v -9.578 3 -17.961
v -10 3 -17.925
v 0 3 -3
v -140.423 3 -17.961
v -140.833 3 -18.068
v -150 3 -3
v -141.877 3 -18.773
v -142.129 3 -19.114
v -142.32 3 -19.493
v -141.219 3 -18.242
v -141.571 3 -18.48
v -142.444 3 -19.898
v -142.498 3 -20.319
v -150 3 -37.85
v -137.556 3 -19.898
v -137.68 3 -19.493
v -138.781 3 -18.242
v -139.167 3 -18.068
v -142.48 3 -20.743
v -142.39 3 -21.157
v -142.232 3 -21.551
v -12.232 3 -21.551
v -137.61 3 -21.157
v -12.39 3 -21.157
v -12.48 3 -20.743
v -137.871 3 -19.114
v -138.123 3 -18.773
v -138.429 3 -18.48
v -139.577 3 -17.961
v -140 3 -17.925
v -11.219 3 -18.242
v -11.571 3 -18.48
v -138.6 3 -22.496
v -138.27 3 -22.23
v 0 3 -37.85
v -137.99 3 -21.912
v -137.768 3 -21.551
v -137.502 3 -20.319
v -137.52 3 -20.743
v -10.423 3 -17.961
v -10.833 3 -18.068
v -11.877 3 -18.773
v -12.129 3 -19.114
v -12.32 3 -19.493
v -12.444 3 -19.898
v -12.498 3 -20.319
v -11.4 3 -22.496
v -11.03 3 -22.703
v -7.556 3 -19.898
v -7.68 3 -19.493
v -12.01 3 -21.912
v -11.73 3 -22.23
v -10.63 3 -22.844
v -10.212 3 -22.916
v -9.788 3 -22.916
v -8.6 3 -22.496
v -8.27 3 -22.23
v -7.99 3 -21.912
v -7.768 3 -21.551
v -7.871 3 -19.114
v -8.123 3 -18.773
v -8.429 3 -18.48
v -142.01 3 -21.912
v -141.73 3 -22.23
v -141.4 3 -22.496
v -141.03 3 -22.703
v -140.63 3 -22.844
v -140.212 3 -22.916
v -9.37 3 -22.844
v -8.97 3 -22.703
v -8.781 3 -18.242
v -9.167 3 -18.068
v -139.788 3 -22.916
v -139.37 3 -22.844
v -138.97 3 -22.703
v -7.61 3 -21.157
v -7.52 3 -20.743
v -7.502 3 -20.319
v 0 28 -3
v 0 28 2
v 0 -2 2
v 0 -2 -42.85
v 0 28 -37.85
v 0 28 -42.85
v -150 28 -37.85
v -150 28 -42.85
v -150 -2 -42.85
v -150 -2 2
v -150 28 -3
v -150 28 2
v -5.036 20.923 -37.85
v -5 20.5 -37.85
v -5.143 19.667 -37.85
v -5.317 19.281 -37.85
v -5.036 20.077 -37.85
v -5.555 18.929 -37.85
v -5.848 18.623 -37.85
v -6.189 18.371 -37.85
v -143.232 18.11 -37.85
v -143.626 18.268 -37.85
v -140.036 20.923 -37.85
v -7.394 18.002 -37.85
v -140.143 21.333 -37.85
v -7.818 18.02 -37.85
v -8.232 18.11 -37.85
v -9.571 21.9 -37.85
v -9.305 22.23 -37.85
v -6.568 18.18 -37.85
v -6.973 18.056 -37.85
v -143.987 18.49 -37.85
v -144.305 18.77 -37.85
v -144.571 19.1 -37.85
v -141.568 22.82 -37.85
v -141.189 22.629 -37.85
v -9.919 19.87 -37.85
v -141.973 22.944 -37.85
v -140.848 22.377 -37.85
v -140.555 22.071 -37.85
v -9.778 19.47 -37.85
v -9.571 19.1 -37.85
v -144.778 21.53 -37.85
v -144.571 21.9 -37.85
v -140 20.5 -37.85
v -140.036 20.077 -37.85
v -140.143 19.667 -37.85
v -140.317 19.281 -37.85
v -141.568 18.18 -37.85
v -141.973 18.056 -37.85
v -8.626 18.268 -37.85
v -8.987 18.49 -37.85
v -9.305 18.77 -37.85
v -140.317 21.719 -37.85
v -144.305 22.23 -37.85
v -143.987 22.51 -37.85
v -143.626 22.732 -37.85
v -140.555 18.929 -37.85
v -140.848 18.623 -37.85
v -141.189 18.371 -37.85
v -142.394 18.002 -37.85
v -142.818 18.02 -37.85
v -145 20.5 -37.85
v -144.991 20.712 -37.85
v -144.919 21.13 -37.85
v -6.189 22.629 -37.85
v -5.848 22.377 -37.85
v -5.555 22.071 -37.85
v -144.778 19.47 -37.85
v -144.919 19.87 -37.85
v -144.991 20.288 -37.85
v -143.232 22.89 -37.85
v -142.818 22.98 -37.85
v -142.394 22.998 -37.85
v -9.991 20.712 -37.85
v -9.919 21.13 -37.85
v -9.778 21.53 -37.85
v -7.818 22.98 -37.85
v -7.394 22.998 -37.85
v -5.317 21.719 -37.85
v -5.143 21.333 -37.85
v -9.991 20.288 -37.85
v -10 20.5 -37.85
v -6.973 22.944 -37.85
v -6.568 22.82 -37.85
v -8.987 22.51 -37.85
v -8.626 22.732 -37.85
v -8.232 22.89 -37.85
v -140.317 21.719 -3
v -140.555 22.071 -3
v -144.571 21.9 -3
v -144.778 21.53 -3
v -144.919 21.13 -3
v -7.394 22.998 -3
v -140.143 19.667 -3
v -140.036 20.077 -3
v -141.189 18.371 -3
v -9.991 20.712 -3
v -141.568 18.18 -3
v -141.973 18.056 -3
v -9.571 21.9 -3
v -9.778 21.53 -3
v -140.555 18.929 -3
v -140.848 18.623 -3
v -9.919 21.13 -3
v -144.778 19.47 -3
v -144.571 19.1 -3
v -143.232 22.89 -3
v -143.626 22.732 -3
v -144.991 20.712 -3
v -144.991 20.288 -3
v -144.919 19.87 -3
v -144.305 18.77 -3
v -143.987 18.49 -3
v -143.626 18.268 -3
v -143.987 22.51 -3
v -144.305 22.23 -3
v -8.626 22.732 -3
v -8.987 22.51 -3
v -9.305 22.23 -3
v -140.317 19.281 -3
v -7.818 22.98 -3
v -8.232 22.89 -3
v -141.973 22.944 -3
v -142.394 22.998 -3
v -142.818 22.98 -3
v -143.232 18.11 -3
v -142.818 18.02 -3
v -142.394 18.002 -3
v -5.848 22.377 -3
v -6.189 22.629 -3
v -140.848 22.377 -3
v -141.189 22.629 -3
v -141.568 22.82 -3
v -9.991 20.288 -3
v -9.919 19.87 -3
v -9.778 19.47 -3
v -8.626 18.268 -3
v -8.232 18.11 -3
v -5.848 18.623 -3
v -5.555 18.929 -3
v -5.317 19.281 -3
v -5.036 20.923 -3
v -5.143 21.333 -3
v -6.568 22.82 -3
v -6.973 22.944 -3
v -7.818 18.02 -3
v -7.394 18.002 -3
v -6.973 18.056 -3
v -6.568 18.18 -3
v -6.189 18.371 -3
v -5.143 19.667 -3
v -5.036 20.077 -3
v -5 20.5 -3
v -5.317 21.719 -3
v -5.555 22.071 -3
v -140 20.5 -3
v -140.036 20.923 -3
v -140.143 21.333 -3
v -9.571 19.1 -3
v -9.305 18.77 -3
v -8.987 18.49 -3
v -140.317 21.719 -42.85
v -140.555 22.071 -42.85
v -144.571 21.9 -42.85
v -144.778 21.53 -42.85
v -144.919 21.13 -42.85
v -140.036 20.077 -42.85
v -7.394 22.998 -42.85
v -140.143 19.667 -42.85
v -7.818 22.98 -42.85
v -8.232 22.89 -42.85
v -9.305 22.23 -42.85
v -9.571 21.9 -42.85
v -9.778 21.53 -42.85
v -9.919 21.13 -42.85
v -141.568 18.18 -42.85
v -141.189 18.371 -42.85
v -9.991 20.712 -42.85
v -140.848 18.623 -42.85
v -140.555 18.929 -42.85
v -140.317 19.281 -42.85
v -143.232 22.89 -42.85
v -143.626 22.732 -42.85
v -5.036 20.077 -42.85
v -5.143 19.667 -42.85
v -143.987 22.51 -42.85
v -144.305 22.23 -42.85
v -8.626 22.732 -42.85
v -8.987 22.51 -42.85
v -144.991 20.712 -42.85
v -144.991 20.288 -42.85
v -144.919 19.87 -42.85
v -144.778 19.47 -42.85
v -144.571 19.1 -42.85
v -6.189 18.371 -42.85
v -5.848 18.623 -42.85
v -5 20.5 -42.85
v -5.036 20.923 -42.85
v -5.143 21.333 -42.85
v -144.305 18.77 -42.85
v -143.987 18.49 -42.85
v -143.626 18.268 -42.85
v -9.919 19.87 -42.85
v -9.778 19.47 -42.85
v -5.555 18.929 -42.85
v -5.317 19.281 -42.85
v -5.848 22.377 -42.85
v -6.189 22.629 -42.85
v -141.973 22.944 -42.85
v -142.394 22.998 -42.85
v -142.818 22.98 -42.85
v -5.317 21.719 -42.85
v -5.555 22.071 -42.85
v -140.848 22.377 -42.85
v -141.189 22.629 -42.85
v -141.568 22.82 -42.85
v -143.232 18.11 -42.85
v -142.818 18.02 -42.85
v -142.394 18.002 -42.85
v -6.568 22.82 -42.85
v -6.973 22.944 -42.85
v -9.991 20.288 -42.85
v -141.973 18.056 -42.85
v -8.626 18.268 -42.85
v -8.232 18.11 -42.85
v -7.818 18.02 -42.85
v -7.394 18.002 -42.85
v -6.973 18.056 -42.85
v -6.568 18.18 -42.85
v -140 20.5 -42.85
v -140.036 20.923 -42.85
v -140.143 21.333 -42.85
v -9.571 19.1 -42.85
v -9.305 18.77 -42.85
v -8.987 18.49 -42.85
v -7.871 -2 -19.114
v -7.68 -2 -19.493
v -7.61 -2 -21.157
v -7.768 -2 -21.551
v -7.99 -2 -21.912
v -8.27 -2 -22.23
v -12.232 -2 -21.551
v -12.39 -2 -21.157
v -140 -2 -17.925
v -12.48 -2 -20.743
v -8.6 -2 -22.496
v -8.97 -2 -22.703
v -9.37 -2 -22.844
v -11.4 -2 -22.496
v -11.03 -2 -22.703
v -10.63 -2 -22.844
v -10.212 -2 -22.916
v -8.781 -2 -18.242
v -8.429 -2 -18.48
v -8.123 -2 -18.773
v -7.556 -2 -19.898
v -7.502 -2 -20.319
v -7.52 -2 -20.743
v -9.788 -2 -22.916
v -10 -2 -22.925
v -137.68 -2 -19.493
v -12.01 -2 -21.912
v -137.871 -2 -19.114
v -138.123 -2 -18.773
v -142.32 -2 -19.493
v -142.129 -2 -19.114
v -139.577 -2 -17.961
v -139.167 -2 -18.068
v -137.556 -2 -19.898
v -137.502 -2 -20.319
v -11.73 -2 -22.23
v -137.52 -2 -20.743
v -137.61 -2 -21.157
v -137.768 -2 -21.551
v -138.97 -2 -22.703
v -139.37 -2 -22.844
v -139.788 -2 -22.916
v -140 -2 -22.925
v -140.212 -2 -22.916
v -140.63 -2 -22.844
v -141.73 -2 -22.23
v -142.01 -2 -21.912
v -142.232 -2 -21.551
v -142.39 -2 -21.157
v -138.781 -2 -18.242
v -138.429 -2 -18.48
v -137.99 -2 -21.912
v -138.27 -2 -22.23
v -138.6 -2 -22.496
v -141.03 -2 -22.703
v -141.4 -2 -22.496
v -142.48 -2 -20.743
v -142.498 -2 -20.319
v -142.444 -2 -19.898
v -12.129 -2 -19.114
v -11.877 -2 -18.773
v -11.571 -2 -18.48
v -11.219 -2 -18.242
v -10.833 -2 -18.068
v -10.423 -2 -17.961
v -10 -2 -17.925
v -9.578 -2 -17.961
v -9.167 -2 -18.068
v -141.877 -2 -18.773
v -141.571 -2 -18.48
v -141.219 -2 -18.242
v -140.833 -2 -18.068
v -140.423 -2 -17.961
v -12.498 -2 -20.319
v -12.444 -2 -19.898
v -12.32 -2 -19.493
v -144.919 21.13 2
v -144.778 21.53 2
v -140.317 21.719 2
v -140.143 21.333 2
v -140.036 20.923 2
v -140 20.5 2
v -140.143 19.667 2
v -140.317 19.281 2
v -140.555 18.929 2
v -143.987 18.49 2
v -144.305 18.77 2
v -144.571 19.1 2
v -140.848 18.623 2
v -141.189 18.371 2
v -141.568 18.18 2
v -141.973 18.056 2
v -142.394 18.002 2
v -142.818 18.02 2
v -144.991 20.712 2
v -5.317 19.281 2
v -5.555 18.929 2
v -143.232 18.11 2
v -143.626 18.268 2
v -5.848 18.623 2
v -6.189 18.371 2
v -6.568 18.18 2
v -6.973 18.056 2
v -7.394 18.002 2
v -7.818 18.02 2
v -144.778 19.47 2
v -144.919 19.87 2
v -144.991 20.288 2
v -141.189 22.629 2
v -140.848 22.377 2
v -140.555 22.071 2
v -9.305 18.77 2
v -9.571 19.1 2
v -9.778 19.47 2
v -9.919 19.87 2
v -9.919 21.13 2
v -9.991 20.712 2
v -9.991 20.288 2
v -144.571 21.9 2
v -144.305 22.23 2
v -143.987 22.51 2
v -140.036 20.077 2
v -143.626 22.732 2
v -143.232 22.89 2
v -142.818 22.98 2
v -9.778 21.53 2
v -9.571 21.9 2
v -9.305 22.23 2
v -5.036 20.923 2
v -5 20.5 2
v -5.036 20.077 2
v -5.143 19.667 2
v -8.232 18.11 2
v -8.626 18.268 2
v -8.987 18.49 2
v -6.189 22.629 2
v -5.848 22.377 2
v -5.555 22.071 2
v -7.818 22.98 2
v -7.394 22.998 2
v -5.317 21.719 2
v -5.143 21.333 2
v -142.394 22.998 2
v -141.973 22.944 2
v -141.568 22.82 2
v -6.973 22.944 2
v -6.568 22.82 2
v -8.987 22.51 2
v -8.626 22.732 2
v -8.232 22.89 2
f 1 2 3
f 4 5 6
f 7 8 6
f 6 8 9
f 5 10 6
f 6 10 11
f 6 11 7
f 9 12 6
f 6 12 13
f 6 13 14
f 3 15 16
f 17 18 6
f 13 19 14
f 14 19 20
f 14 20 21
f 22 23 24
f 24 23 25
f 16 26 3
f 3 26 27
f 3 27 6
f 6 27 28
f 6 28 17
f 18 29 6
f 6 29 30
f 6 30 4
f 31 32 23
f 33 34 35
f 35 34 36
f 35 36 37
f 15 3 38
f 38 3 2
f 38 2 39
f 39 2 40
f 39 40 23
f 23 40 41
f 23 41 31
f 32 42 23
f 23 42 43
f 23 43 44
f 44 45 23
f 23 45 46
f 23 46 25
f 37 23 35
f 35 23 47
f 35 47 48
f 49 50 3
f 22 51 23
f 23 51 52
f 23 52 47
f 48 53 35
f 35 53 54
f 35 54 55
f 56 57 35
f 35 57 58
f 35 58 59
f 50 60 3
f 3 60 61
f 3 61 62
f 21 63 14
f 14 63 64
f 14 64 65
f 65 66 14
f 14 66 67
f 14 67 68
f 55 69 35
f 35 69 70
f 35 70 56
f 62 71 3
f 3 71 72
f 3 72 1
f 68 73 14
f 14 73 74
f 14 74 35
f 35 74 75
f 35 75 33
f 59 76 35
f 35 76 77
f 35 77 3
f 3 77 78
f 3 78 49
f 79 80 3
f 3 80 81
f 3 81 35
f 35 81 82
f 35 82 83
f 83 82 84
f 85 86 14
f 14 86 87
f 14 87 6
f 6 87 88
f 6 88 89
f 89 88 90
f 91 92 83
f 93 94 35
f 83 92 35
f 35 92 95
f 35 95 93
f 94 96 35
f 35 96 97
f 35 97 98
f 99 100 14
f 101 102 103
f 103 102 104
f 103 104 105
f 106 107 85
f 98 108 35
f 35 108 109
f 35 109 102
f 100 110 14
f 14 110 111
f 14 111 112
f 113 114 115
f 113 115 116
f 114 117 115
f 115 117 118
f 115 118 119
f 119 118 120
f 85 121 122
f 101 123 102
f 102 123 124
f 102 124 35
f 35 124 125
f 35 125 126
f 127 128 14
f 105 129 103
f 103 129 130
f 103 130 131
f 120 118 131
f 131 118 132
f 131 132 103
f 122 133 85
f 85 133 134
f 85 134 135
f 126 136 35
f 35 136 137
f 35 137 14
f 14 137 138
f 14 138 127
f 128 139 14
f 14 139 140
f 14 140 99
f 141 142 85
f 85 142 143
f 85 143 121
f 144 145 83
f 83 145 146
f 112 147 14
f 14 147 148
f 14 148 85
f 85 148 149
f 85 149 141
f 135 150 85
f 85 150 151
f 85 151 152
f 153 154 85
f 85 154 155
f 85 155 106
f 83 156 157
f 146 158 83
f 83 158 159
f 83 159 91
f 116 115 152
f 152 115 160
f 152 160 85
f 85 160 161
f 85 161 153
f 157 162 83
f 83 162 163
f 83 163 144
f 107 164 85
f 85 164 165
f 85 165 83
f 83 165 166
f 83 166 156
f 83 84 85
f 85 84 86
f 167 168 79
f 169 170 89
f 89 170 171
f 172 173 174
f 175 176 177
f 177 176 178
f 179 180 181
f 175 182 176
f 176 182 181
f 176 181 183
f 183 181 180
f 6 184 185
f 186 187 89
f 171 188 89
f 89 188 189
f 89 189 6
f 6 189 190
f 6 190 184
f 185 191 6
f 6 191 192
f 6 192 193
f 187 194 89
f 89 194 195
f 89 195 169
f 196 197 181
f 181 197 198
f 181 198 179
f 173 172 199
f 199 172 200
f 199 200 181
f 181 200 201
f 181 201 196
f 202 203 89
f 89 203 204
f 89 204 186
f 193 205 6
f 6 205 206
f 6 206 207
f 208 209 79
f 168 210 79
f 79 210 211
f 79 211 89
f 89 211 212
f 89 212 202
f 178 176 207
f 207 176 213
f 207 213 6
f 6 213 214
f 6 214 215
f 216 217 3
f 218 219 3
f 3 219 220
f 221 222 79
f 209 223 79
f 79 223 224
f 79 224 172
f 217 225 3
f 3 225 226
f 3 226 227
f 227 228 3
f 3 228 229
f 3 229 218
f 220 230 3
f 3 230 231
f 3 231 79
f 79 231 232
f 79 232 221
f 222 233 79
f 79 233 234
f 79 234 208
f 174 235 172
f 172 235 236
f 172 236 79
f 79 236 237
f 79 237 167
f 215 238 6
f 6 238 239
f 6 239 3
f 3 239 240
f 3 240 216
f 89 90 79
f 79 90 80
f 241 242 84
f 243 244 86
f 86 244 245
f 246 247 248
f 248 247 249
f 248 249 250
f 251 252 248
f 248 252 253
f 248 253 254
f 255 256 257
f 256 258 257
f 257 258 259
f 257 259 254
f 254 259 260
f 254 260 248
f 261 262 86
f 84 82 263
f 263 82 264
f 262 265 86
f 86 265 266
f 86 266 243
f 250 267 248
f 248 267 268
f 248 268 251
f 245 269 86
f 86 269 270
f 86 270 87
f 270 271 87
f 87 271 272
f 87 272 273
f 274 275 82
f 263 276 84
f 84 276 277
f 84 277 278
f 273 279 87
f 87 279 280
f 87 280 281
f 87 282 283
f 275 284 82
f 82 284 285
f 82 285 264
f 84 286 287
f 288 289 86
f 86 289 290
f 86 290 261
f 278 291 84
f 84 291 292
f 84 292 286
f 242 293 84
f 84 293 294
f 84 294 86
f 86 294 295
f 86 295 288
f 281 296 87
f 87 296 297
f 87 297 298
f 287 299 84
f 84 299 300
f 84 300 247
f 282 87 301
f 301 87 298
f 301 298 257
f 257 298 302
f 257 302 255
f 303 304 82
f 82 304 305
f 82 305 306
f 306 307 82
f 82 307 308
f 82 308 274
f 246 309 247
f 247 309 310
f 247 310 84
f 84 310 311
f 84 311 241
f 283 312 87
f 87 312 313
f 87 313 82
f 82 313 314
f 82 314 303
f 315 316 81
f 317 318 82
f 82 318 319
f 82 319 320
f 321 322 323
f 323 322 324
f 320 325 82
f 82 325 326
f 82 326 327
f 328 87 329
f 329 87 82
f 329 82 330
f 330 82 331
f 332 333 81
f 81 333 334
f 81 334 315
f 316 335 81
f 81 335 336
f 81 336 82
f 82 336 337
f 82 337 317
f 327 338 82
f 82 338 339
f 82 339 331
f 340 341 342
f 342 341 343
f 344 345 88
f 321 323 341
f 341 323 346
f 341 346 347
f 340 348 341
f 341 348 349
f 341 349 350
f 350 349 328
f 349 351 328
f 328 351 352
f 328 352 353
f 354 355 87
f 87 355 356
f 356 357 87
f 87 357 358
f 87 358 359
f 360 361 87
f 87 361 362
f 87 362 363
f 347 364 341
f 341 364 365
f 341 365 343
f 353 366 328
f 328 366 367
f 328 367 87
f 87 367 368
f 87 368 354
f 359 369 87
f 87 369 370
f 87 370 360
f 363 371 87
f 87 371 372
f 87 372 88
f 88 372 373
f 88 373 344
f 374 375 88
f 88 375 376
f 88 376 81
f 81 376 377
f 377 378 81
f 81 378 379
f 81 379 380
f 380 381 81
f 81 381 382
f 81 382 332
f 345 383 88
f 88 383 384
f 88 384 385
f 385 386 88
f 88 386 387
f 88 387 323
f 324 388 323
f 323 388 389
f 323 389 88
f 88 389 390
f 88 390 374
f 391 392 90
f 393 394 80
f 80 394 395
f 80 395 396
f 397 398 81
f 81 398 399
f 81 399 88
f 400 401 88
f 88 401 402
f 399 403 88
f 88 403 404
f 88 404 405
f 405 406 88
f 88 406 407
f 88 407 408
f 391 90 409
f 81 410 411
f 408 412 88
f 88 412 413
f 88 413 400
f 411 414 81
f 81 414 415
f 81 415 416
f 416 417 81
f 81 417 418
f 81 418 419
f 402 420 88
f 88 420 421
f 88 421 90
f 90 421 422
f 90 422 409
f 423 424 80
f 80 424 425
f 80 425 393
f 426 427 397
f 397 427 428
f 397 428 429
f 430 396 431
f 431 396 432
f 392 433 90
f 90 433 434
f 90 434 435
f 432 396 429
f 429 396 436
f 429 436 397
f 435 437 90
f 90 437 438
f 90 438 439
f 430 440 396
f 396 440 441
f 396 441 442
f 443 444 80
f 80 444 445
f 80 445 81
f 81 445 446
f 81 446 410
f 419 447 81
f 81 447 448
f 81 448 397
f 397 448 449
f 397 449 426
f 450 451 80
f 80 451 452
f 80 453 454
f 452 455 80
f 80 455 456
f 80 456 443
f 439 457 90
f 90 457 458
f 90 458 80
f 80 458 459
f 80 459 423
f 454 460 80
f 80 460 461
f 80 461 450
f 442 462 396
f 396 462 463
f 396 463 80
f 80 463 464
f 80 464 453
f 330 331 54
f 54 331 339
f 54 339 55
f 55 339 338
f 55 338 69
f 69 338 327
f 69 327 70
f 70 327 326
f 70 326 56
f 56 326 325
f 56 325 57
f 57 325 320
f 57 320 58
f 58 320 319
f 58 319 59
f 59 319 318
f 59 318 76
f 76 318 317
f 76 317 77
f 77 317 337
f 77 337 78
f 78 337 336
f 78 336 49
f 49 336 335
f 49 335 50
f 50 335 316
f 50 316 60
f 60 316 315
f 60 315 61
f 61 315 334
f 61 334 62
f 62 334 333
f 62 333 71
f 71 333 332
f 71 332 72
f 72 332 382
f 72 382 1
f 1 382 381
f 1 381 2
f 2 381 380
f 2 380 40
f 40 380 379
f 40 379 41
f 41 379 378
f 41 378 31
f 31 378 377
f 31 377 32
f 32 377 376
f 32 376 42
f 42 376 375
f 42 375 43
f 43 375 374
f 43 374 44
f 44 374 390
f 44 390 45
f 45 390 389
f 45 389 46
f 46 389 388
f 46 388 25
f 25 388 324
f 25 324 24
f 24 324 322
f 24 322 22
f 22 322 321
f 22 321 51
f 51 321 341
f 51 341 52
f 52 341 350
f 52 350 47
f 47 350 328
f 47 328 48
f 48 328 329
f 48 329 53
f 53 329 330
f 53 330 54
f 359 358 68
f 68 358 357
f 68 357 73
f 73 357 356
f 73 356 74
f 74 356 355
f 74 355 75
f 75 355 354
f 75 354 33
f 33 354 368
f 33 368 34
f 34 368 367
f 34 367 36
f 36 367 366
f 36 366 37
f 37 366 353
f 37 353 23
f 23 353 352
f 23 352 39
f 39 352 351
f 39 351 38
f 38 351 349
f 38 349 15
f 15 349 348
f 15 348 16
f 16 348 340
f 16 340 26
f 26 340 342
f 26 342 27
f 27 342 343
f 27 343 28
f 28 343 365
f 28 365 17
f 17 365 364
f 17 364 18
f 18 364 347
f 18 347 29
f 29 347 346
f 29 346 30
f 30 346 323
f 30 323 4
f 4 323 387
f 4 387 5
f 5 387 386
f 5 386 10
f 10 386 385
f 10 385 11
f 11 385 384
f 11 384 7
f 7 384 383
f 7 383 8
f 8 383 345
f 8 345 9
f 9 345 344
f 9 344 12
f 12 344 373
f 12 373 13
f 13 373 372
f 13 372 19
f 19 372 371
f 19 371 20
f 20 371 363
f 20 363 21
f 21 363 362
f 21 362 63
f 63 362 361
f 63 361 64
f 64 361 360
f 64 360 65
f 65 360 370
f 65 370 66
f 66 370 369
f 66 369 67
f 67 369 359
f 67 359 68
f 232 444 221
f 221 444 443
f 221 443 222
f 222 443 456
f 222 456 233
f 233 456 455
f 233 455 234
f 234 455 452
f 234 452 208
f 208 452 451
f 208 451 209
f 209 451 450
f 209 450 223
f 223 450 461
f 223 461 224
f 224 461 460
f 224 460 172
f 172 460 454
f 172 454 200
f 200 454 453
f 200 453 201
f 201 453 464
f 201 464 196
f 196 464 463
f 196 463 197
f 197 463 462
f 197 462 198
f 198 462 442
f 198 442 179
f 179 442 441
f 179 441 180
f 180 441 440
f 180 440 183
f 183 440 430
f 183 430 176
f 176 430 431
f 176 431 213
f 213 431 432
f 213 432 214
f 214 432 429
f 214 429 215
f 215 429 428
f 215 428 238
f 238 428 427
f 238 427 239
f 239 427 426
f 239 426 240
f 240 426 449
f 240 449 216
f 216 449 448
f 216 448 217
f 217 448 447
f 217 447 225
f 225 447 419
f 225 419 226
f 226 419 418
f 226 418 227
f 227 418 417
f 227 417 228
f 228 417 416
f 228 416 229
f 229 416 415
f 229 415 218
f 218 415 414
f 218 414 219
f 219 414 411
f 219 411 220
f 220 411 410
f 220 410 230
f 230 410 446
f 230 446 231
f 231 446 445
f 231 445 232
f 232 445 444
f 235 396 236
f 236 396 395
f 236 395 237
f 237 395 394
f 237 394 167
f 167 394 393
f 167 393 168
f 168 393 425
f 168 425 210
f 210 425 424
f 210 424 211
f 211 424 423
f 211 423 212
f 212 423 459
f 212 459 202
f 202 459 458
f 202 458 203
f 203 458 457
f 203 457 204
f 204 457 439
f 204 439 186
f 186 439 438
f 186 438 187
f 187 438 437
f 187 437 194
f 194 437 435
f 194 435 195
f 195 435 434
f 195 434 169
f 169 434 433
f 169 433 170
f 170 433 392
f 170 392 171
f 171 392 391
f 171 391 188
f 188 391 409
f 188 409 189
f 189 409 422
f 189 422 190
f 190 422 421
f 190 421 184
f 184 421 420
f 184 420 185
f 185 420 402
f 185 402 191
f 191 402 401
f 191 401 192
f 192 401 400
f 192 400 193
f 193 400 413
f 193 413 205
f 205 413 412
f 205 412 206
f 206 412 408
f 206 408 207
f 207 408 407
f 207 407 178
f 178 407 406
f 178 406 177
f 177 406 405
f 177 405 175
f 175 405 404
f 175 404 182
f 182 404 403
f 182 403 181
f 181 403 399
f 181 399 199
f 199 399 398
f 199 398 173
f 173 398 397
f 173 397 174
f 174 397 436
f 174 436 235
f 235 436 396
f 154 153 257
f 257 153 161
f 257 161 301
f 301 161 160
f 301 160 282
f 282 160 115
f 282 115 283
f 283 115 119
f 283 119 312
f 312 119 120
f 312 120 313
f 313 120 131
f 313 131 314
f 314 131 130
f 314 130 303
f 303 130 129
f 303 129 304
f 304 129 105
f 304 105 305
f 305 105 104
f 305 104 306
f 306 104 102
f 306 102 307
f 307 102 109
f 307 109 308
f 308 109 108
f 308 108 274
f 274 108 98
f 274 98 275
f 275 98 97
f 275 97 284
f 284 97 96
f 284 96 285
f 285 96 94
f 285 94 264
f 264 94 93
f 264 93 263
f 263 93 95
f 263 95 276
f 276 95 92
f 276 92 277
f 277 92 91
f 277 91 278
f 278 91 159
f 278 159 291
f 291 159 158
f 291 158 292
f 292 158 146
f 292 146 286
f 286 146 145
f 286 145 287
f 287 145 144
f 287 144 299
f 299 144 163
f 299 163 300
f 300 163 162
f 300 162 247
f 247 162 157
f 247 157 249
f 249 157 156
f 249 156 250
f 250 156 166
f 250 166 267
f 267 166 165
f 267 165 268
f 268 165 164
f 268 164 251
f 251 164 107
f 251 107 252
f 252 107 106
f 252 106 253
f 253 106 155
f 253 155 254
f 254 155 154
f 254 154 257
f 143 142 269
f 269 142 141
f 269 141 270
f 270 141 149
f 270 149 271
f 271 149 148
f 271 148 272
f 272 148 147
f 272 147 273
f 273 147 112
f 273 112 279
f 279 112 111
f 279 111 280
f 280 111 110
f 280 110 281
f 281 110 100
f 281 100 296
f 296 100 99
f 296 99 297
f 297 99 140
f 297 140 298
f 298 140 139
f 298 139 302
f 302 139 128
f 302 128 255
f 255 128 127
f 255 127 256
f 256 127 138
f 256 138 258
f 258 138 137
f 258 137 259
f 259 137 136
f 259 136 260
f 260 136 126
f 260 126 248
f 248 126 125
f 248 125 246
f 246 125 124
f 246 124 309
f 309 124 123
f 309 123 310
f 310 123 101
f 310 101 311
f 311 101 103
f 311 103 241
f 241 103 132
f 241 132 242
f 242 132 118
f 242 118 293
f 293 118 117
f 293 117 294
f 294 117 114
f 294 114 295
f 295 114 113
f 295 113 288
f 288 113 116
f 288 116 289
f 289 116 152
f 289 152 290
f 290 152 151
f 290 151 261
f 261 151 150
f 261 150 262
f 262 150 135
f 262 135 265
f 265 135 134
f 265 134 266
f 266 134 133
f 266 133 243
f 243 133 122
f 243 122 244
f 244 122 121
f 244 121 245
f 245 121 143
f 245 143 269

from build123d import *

# Parameters (mm, degrees)
SKETCH1_W           = 150
SKETCH1_H           = 40.85
BOSS_EXTRUDE1_DEPTH = 3
SKETCH2_W           = 150
SKETCH2_H           = 3
BOSS_EXTRUDE2_DEPTH = 25
BOSS_EXTRUDE3_DEPTH = 150
SKETCH6_R           = 2.5
CUT_EXTRUDE2_DEPTH  = 10
SKETCH7_R           = 2.5
CUT_EXTRUDE3_DEPTH  = 160.045661682


with BuildPart() as part:
    # Sketch1 → Boss-Extrude1 (new body)
    with BuildSketch(Plane(origin=(0, 0, 0), x_dir=(1, 0, 0), z_dir=(0, 1, 0))):
        with Locations((-75, 20.425)):
            Rectangle(SKETCH1_W, SKETCH1_H)
    extrude(amount=BOSS_EXTRUDE1_DEPTH)

    # Sketch2 → Boss-Extrude2 (add)
    with BuildSketch(Plane(origin=(0, 3, 0), x_dir=(1, 0, 0), z_dir=(0, 1, 0))):
        with Locations((-75, 39.35)):
            Rectangle(SKETCH2_W, SKETCH2_H)
        with Locations((-75, 1.5)):
            Rectangle(SKETCH2_W, SKETCH2_H)
    extrude(amount=BOSS_EXTRUDE2_DEPTH)

    # Sketch5 → Boss-Extrude3 (add)
    with BuildSketch(Plane(origin=(0, 0, 0), x_dir=(0, 0, -1), z_dir=(1, 0, 0))):
        Polygon((3, 28), (-2, 28), (-2, -2), (42.85, -2), (42.85, 28), (37.85, 28), (37.85, 3), (3, 3), align=None)
    extrude(amount=-BOSS_EXTRUDE3_DEPTH)

    # Sketch6 → Cut-Extrude2 (cut)
    with BuildSketch(Plane(origin=(0, 3, 0), x_dir=(1, 0, 0), z_dir=(0, 1, 0))):
        with Locations(Location((-140, 20.425, 0), (0, 0, 270))):
            Circle(SKETCH6_R)
        with Locations(Location((-10, 20.425, 0), (0, 0, 270))):
            Circle(SKETCH6_R)
    extrude(amount=-CUT_EXTRUDE2_DEPTH, mode=Mode.SUBTRACT)

    # Sketch7 → Cut-Extrude3 (cut, through all)
    with BuildSketch(Plane.XY.offset(2)):
        with Locations((-142.5, 20.5)):
            Circle(SKETCH7_R)
        with Locations((-7.5, 20.5)):
            Circle(SKETCH7_R)
    extrude(amount=-CUT_EXTRUDE3_DEPTH, mode=Mode.SUBTRACT)


solid = part.part
